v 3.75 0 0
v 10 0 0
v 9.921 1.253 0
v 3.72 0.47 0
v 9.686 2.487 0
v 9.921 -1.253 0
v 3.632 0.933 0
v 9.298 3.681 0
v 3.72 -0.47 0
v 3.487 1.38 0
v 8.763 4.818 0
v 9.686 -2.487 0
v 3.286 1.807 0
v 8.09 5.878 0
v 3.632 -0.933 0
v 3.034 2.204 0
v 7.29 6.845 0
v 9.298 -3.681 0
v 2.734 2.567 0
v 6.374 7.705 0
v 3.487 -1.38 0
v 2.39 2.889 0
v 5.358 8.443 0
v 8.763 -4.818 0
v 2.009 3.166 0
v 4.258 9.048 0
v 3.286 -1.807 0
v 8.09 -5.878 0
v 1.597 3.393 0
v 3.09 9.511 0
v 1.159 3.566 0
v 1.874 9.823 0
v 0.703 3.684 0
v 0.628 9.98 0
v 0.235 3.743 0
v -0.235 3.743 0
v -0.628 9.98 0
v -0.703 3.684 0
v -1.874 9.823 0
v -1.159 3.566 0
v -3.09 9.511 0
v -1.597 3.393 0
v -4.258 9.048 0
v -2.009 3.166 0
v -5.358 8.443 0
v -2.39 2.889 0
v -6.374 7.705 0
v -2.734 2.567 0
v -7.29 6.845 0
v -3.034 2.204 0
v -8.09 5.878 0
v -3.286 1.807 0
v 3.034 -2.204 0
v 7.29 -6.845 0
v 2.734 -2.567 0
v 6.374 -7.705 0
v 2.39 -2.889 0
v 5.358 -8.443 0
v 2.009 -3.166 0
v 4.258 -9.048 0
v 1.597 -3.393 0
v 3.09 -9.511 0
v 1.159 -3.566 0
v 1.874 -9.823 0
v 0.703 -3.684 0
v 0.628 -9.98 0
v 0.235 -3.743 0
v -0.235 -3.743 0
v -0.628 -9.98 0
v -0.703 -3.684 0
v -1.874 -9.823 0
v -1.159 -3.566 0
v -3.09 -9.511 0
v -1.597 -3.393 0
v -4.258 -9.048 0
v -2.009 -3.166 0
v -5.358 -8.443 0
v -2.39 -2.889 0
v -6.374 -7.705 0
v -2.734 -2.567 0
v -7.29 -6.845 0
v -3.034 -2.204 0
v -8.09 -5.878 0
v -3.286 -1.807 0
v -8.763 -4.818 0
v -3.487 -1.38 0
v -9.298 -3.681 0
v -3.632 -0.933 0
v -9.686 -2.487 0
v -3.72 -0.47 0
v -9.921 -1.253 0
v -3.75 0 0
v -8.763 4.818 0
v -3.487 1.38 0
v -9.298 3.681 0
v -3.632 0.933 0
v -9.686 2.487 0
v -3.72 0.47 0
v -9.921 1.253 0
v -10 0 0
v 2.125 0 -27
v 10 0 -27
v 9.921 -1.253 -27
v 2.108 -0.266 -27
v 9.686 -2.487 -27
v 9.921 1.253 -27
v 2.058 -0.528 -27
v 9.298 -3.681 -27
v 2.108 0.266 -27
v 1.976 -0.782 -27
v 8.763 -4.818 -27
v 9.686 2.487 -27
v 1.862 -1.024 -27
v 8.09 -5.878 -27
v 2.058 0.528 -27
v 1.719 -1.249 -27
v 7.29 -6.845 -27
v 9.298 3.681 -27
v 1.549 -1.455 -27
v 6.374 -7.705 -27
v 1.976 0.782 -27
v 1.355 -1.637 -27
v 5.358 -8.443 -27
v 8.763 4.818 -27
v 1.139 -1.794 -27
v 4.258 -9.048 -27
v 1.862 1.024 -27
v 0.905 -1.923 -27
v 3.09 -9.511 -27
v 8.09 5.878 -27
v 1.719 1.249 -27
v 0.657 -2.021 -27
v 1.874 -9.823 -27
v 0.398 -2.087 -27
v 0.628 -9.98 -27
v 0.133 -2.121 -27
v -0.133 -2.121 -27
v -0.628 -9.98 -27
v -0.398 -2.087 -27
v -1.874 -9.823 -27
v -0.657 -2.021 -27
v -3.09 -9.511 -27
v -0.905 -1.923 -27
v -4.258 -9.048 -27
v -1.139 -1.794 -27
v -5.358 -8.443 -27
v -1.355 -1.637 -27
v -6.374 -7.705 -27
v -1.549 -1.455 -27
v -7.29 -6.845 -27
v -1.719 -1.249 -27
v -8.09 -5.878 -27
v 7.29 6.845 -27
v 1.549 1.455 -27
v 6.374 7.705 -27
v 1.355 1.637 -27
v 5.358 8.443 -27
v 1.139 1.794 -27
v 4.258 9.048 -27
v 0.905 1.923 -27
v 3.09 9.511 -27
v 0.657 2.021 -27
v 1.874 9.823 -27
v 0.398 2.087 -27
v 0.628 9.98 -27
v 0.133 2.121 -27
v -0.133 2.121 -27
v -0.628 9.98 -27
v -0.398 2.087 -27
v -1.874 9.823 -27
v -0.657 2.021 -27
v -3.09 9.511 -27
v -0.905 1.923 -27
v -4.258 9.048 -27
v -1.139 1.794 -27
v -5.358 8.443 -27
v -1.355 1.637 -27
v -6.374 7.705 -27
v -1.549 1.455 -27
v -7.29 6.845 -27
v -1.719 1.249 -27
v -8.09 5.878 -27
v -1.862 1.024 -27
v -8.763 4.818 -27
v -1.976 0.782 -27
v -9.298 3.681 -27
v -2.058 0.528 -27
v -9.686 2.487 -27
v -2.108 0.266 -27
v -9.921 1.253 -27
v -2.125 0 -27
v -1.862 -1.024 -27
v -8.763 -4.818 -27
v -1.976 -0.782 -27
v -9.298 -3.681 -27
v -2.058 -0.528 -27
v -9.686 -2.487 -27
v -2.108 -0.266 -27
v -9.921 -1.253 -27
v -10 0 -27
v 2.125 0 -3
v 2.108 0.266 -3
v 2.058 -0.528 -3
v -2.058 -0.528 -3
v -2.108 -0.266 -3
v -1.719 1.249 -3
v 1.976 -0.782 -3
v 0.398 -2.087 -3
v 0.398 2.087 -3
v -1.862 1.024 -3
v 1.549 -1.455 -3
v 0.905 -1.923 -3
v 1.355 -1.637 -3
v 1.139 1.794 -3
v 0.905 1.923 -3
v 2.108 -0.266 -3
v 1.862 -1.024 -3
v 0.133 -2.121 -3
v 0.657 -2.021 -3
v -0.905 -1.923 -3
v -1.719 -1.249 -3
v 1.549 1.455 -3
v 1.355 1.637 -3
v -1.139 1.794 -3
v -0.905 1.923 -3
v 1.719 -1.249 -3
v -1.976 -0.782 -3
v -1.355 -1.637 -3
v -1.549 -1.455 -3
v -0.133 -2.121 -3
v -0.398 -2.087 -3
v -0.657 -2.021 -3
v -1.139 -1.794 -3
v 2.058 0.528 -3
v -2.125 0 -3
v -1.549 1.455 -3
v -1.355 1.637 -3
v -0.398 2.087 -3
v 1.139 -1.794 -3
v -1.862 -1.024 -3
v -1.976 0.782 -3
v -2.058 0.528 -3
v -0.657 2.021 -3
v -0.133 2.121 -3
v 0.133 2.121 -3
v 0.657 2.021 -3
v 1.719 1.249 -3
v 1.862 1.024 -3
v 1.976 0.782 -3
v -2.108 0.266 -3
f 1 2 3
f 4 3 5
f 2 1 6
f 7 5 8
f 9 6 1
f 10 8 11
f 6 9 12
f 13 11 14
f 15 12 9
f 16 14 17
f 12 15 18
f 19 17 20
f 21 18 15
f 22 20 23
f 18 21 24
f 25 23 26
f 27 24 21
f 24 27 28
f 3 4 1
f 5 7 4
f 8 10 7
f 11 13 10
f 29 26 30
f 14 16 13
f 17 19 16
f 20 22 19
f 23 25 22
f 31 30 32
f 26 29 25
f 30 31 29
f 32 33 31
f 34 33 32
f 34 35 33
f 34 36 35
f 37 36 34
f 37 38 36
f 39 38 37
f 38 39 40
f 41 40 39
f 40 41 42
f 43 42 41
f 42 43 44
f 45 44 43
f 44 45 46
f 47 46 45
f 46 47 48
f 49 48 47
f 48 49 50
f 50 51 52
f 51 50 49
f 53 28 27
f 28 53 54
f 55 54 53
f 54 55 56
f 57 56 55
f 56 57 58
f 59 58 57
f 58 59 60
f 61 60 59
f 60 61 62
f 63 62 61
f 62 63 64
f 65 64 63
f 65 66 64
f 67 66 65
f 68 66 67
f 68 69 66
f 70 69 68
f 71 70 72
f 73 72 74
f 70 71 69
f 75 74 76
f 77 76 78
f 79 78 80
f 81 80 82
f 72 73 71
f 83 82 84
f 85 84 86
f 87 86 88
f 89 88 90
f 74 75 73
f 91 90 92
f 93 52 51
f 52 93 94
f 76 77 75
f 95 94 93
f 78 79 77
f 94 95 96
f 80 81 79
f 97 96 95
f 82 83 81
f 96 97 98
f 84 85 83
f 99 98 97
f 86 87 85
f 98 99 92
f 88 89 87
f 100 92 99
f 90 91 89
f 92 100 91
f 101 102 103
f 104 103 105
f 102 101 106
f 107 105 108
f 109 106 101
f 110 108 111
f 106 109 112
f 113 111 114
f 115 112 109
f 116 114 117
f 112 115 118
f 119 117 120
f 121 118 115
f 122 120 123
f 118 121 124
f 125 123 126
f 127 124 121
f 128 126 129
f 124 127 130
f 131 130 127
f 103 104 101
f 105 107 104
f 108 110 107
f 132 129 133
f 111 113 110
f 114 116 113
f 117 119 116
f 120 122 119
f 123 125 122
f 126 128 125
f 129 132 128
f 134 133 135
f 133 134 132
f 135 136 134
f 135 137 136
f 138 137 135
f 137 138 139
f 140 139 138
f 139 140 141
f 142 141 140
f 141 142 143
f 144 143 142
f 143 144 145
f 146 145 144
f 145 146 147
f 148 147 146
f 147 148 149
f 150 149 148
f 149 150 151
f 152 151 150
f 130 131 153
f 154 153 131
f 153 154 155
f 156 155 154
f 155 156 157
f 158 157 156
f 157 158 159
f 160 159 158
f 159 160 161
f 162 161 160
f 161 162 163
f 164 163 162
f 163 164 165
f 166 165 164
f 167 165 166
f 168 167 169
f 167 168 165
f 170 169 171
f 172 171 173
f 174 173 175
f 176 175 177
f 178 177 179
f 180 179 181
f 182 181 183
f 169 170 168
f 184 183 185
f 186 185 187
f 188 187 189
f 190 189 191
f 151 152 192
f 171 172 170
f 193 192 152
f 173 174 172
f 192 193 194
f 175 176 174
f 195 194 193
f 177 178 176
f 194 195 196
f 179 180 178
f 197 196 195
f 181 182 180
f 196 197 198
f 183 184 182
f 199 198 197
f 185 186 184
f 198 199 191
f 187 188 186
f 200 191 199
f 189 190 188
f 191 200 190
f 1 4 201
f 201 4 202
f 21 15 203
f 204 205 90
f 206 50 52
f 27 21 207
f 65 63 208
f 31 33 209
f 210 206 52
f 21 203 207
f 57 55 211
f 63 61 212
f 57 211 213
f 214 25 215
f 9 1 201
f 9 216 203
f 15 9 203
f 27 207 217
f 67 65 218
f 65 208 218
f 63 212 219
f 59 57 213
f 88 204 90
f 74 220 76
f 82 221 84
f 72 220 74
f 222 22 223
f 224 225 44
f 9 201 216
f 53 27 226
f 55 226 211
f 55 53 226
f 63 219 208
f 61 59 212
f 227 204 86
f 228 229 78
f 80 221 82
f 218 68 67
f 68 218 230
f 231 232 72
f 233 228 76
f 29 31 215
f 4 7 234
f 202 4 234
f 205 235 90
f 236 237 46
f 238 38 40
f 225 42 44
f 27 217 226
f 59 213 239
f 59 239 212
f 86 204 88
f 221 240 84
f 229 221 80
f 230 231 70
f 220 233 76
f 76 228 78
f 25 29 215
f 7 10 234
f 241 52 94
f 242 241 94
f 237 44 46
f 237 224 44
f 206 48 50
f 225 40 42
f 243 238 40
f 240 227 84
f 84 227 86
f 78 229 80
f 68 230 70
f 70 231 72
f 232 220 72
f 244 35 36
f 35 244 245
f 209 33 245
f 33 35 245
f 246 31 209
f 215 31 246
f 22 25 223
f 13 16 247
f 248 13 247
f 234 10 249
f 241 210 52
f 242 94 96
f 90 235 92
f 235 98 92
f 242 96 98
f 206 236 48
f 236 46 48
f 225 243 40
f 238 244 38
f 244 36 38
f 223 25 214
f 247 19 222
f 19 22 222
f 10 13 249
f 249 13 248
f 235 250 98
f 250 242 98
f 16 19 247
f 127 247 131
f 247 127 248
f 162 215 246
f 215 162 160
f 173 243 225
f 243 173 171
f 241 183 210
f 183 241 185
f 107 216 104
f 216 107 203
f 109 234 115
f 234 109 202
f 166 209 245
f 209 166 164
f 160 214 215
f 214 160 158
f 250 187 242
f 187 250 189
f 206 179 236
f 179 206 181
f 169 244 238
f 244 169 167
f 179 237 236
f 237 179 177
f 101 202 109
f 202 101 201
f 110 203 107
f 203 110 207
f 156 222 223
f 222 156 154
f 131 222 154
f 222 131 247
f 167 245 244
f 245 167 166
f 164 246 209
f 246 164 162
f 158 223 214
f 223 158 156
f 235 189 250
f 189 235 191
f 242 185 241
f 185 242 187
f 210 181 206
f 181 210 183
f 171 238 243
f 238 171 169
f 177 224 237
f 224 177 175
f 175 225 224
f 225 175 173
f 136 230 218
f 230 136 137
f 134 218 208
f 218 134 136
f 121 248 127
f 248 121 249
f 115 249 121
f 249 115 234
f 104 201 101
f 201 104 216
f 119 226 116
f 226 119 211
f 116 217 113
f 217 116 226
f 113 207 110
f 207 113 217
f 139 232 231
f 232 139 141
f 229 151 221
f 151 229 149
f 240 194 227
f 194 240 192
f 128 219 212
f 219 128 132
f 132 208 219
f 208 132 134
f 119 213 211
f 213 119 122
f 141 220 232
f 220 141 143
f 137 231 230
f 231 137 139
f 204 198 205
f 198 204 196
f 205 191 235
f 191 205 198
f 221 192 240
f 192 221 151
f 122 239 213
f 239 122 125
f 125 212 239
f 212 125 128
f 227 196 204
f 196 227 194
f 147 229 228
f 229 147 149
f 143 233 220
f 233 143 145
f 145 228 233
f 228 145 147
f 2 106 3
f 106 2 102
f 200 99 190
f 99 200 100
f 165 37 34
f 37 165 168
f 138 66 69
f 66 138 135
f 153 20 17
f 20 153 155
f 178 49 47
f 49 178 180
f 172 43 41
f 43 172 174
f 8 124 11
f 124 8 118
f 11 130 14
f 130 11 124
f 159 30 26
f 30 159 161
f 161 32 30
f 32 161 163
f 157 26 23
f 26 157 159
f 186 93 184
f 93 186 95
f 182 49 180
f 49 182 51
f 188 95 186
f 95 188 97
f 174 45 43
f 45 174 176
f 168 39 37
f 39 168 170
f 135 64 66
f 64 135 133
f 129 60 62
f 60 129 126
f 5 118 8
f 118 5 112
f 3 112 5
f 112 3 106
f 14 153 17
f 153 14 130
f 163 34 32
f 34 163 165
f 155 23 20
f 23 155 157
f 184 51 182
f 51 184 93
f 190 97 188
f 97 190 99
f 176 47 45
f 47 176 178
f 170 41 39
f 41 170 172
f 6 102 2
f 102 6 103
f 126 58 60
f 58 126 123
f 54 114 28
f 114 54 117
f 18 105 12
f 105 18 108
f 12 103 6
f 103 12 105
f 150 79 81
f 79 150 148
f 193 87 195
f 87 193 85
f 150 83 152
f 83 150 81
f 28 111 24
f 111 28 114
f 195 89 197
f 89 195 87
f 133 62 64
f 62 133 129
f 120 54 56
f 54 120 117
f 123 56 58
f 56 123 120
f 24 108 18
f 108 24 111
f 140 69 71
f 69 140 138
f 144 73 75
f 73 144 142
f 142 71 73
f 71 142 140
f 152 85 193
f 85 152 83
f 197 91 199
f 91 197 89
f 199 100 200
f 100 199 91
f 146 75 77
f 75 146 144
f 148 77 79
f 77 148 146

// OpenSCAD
$fn = 50;


difference() {
	union() {
		translate(v = [0, 0, -27.0000000000]) {
			cylinder(h = 27, r = 10.0000000000);
		}
	}
	union() {
		translate(v = [0, 0, 0]) {
			rotate(a = [0, 0, 0]) {
				difference() {
					union() {
						#translate(v = [0, 0, -27.0000000000]) {
							cylinder(h = 27, r = 2.0000000000);
						}
						#translate(v = [0, 0, -3]) {
							cylinder(h = 3, r = 10.0000000000, r1 = 2.1250000000, r2 = 3.7500000000);
						}
						#translate(v = [0, 0, -27.0000000000]) {
							cylinder(h = 27, r = 2.1250000000);
						}
						#translate(v = [0, 0, -27.0000000000]) {
							cylinder(h = 27, r = 2.0000000000);
						}
					}
					union();
				}
			}
		}
	}
}
